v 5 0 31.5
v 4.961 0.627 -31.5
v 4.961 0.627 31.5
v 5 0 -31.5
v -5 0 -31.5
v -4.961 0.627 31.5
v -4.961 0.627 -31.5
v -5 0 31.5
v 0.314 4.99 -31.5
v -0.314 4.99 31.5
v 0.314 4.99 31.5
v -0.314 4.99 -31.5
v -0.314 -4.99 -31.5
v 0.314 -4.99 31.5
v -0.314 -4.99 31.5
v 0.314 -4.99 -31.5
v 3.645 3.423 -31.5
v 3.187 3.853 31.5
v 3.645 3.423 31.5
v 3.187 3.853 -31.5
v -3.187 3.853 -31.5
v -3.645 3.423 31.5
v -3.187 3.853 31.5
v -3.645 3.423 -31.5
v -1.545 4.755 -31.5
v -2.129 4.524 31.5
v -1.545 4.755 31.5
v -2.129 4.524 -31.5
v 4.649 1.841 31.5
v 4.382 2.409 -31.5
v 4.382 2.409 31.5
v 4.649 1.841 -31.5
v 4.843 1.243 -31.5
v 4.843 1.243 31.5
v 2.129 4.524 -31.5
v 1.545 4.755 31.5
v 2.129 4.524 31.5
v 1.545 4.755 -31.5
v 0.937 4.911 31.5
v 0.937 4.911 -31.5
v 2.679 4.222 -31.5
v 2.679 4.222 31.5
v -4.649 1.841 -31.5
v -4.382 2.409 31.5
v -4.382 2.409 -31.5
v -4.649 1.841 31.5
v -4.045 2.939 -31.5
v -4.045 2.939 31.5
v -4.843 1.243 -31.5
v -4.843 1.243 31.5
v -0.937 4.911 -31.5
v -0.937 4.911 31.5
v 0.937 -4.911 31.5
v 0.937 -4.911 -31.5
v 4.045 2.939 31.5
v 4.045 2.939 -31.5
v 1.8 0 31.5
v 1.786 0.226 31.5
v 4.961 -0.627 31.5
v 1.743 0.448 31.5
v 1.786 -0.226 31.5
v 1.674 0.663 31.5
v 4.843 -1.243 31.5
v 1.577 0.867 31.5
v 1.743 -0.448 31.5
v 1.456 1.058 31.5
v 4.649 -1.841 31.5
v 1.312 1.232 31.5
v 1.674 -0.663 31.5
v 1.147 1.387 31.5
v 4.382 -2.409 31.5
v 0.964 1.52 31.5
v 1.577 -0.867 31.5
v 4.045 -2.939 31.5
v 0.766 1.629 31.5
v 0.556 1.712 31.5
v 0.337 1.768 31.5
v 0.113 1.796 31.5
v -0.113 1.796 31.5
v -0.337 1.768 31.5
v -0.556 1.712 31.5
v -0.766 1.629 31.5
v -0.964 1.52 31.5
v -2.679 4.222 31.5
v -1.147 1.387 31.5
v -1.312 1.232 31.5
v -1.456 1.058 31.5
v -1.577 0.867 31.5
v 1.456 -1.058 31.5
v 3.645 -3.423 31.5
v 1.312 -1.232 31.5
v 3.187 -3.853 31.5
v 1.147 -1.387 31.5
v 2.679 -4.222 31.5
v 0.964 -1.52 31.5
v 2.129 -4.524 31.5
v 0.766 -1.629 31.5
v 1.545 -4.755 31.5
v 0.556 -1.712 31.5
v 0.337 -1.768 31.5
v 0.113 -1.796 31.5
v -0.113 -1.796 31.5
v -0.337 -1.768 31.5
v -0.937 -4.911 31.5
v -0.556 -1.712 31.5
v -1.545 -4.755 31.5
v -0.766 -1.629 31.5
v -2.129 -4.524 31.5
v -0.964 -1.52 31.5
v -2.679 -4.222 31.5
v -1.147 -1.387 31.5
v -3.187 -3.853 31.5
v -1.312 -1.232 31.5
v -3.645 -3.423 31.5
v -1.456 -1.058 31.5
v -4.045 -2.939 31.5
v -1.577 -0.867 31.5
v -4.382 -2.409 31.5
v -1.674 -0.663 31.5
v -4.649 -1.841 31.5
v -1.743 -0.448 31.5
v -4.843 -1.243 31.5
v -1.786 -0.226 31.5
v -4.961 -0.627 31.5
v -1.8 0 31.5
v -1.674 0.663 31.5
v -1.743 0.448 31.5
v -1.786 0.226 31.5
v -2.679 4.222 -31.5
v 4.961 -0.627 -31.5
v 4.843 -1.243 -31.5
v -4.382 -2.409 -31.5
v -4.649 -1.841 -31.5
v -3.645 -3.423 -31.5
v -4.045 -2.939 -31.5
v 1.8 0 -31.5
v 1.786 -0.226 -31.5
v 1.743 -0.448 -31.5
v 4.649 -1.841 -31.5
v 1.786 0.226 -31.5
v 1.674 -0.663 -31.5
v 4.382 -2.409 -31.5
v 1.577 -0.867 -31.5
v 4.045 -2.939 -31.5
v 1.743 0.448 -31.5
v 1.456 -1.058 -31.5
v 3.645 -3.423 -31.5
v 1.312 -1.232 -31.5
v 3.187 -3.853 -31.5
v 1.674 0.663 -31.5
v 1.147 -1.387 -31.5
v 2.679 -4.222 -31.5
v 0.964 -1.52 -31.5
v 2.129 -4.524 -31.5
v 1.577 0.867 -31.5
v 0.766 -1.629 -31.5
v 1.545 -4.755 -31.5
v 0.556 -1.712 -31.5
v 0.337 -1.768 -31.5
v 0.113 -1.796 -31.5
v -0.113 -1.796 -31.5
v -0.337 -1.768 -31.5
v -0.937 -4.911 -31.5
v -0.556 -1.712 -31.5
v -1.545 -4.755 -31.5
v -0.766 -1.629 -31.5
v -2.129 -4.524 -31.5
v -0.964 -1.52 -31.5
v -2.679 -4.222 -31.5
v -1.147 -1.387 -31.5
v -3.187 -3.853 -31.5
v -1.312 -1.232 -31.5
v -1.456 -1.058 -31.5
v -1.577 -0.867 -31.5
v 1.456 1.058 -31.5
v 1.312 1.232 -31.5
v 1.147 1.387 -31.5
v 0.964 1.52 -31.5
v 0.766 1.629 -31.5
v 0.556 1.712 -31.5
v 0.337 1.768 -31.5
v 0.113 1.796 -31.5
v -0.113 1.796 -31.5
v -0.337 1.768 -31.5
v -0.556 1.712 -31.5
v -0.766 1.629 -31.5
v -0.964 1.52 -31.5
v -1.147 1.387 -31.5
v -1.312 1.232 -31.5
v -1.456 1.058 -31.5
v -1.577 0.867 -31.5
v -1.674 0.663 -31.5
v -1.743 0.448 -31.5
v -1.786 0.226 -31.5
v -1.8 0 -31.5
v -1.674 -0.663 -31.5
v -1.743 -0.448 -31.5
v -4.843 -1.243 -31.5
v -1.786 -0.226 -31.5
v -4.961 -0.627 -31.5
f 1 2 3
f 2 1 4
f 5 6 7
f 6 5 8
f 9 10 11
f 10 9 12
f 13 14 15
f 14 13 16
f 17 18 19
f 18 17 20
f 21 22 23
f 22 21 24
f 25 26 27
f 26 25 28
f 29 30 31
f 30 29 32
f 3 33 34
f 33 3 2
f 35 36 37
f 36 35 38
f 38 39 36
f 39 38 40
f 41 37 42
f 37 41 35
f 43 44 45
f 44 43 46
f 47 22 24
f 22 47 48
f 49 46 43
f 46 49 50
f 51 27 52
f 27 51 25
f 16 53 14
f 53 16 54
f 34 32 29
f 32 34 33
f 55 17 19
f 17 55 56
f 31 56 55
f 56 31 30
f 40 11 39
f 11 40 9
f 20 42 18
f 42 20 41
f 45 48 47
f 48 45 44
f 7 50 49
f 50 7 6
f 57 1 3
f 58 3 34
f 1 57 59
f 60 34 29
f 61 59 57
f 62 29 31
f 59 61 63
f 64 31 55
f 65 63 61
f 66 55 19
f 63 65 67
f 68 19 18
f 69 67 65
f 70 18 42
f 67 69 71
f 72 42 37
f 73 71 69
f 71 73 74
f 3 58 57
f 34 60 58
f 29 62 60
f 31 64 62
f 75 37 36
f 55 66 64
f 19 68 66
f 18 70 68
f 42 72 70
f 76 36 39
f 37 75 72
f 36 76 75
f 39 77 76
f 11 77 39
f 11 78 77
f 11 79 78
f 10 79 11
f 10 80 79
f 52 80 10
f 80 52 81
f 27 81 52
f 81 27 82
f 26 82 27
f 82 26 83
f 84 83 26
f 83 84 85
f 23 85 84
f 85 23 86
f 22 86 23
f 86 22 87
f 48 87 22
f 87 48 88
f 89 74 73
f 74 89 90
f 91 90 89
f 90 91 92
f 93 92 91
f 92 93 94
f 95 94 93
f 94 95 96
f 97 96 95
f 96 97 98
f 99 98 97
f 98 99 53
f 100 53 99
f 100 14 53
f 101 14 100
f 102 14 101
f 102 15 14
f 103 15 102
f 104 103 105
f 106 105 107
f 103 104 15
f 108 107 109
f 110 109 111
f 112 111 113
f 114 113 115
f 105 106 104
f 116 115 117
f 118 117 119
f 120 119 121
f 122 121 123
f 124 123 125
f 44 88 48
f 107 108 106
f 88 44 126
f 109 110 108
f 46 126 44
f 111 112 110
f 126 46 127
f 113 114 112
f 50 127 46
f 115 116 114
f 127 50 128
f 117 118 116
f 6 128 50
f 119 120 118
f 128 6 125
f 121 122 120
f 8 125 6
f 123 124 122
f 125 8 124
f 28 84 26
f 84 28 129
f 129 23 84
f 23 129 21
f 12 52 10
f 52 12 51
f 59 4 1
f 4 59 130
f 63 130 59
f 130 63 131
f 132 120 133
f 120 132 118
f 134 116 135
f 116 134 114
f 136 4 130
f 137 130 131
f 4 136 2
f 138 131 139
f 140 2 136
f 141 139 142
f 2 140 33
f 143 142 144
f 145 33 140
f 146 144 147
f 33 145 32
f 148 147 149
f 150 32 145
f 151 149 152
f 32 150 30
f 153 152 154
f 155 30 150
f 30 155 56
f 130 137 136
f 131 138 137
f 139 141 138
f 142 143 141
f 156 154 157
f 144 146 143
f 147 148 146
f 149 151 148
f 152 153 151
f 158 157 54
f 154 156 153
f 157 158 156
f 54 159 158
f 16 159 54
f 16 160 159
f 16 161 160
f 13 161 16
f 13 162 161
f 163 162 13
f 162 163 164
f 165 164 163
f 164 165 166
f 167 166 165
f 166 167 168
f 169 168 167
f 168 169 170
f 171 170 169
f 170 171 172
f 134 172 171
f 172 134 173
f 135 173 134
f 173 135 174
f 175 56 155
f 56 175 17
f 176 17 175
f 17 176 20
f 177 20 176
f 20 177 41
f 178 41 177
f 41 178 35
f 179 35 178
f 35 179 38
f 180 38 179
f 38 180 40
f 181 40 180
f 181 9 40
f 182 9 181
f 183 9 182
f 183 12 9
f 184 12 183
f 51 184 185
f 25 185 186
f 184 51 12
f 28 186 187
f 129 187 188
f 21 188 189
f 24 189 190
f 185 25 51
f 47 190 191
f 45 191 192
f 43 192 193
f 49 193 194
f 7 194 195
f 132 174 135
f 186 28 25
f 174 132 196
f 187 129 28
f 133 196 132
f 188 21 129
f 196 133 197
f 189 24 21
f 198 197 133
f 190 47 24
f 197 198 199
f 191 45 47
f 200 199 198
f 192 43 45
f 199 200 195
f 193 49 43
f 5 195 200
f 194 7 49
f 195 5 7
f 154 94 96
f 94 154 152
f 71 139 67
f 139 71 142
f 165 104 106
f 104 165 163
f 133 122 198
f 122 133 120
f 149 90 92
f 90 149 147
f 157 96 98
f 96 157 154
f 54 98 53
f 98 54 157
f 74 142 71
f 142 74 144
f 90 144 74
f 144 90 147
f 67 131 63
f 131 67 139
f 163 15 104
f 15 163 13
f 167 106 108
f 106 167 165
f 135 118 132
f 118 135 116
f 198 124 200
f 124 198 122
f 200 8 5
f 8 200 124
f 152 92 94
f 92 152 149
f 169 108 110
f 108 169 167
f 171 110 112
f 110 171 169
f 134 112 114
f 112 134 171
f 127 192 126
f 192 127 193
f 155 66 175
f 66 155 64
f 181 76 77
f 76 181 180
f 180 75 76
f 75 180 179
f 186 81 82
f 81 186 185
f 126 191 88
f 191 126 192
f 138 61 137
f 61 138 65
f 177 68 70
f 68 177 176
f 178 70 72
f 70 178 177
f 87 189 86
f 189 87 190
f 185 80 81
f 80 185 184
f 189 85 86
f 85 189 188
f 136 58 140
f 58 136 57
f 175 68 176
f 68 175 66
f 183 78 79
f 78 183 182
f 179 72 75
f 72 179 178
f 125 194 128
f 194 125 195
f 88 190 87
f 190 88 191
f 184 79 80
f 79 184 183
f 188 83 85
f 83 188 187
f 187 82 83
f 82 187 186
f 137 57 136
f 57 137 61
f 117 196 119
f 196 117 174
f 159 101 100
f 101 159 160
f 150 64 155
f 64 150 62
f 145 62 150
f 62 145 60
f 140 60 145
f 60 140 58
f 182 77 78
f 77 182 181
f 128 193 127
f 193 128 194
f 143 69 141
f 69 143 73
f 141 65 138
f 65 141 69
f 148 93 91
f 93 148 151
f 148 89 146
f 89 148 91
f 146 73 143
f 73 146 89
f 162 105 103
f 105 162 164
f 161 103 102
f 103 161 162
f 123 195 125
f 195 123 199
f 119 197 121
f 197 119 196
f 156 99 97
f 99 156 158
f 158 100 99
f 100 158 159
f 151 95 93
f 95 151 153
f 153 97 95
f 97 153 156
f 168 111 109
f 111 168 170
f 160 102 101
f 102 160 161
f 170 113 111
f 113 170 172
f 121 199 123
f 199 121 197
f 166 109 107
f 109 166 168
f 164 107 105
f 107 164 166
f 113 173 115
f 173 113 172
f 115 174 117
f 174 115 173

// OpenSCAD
$fn = 50;


difference() {
	union() {
		translate(v = [0, 0, -31.5000000000]) {
			cylinder(h = 63, r = 5.0000000000);
		}
	}
	union() {
		translate(v = [0, 0, -100.0000000000]) {
			cylinder(h = 200, r = 1.8000000000);
		}
	}
}
